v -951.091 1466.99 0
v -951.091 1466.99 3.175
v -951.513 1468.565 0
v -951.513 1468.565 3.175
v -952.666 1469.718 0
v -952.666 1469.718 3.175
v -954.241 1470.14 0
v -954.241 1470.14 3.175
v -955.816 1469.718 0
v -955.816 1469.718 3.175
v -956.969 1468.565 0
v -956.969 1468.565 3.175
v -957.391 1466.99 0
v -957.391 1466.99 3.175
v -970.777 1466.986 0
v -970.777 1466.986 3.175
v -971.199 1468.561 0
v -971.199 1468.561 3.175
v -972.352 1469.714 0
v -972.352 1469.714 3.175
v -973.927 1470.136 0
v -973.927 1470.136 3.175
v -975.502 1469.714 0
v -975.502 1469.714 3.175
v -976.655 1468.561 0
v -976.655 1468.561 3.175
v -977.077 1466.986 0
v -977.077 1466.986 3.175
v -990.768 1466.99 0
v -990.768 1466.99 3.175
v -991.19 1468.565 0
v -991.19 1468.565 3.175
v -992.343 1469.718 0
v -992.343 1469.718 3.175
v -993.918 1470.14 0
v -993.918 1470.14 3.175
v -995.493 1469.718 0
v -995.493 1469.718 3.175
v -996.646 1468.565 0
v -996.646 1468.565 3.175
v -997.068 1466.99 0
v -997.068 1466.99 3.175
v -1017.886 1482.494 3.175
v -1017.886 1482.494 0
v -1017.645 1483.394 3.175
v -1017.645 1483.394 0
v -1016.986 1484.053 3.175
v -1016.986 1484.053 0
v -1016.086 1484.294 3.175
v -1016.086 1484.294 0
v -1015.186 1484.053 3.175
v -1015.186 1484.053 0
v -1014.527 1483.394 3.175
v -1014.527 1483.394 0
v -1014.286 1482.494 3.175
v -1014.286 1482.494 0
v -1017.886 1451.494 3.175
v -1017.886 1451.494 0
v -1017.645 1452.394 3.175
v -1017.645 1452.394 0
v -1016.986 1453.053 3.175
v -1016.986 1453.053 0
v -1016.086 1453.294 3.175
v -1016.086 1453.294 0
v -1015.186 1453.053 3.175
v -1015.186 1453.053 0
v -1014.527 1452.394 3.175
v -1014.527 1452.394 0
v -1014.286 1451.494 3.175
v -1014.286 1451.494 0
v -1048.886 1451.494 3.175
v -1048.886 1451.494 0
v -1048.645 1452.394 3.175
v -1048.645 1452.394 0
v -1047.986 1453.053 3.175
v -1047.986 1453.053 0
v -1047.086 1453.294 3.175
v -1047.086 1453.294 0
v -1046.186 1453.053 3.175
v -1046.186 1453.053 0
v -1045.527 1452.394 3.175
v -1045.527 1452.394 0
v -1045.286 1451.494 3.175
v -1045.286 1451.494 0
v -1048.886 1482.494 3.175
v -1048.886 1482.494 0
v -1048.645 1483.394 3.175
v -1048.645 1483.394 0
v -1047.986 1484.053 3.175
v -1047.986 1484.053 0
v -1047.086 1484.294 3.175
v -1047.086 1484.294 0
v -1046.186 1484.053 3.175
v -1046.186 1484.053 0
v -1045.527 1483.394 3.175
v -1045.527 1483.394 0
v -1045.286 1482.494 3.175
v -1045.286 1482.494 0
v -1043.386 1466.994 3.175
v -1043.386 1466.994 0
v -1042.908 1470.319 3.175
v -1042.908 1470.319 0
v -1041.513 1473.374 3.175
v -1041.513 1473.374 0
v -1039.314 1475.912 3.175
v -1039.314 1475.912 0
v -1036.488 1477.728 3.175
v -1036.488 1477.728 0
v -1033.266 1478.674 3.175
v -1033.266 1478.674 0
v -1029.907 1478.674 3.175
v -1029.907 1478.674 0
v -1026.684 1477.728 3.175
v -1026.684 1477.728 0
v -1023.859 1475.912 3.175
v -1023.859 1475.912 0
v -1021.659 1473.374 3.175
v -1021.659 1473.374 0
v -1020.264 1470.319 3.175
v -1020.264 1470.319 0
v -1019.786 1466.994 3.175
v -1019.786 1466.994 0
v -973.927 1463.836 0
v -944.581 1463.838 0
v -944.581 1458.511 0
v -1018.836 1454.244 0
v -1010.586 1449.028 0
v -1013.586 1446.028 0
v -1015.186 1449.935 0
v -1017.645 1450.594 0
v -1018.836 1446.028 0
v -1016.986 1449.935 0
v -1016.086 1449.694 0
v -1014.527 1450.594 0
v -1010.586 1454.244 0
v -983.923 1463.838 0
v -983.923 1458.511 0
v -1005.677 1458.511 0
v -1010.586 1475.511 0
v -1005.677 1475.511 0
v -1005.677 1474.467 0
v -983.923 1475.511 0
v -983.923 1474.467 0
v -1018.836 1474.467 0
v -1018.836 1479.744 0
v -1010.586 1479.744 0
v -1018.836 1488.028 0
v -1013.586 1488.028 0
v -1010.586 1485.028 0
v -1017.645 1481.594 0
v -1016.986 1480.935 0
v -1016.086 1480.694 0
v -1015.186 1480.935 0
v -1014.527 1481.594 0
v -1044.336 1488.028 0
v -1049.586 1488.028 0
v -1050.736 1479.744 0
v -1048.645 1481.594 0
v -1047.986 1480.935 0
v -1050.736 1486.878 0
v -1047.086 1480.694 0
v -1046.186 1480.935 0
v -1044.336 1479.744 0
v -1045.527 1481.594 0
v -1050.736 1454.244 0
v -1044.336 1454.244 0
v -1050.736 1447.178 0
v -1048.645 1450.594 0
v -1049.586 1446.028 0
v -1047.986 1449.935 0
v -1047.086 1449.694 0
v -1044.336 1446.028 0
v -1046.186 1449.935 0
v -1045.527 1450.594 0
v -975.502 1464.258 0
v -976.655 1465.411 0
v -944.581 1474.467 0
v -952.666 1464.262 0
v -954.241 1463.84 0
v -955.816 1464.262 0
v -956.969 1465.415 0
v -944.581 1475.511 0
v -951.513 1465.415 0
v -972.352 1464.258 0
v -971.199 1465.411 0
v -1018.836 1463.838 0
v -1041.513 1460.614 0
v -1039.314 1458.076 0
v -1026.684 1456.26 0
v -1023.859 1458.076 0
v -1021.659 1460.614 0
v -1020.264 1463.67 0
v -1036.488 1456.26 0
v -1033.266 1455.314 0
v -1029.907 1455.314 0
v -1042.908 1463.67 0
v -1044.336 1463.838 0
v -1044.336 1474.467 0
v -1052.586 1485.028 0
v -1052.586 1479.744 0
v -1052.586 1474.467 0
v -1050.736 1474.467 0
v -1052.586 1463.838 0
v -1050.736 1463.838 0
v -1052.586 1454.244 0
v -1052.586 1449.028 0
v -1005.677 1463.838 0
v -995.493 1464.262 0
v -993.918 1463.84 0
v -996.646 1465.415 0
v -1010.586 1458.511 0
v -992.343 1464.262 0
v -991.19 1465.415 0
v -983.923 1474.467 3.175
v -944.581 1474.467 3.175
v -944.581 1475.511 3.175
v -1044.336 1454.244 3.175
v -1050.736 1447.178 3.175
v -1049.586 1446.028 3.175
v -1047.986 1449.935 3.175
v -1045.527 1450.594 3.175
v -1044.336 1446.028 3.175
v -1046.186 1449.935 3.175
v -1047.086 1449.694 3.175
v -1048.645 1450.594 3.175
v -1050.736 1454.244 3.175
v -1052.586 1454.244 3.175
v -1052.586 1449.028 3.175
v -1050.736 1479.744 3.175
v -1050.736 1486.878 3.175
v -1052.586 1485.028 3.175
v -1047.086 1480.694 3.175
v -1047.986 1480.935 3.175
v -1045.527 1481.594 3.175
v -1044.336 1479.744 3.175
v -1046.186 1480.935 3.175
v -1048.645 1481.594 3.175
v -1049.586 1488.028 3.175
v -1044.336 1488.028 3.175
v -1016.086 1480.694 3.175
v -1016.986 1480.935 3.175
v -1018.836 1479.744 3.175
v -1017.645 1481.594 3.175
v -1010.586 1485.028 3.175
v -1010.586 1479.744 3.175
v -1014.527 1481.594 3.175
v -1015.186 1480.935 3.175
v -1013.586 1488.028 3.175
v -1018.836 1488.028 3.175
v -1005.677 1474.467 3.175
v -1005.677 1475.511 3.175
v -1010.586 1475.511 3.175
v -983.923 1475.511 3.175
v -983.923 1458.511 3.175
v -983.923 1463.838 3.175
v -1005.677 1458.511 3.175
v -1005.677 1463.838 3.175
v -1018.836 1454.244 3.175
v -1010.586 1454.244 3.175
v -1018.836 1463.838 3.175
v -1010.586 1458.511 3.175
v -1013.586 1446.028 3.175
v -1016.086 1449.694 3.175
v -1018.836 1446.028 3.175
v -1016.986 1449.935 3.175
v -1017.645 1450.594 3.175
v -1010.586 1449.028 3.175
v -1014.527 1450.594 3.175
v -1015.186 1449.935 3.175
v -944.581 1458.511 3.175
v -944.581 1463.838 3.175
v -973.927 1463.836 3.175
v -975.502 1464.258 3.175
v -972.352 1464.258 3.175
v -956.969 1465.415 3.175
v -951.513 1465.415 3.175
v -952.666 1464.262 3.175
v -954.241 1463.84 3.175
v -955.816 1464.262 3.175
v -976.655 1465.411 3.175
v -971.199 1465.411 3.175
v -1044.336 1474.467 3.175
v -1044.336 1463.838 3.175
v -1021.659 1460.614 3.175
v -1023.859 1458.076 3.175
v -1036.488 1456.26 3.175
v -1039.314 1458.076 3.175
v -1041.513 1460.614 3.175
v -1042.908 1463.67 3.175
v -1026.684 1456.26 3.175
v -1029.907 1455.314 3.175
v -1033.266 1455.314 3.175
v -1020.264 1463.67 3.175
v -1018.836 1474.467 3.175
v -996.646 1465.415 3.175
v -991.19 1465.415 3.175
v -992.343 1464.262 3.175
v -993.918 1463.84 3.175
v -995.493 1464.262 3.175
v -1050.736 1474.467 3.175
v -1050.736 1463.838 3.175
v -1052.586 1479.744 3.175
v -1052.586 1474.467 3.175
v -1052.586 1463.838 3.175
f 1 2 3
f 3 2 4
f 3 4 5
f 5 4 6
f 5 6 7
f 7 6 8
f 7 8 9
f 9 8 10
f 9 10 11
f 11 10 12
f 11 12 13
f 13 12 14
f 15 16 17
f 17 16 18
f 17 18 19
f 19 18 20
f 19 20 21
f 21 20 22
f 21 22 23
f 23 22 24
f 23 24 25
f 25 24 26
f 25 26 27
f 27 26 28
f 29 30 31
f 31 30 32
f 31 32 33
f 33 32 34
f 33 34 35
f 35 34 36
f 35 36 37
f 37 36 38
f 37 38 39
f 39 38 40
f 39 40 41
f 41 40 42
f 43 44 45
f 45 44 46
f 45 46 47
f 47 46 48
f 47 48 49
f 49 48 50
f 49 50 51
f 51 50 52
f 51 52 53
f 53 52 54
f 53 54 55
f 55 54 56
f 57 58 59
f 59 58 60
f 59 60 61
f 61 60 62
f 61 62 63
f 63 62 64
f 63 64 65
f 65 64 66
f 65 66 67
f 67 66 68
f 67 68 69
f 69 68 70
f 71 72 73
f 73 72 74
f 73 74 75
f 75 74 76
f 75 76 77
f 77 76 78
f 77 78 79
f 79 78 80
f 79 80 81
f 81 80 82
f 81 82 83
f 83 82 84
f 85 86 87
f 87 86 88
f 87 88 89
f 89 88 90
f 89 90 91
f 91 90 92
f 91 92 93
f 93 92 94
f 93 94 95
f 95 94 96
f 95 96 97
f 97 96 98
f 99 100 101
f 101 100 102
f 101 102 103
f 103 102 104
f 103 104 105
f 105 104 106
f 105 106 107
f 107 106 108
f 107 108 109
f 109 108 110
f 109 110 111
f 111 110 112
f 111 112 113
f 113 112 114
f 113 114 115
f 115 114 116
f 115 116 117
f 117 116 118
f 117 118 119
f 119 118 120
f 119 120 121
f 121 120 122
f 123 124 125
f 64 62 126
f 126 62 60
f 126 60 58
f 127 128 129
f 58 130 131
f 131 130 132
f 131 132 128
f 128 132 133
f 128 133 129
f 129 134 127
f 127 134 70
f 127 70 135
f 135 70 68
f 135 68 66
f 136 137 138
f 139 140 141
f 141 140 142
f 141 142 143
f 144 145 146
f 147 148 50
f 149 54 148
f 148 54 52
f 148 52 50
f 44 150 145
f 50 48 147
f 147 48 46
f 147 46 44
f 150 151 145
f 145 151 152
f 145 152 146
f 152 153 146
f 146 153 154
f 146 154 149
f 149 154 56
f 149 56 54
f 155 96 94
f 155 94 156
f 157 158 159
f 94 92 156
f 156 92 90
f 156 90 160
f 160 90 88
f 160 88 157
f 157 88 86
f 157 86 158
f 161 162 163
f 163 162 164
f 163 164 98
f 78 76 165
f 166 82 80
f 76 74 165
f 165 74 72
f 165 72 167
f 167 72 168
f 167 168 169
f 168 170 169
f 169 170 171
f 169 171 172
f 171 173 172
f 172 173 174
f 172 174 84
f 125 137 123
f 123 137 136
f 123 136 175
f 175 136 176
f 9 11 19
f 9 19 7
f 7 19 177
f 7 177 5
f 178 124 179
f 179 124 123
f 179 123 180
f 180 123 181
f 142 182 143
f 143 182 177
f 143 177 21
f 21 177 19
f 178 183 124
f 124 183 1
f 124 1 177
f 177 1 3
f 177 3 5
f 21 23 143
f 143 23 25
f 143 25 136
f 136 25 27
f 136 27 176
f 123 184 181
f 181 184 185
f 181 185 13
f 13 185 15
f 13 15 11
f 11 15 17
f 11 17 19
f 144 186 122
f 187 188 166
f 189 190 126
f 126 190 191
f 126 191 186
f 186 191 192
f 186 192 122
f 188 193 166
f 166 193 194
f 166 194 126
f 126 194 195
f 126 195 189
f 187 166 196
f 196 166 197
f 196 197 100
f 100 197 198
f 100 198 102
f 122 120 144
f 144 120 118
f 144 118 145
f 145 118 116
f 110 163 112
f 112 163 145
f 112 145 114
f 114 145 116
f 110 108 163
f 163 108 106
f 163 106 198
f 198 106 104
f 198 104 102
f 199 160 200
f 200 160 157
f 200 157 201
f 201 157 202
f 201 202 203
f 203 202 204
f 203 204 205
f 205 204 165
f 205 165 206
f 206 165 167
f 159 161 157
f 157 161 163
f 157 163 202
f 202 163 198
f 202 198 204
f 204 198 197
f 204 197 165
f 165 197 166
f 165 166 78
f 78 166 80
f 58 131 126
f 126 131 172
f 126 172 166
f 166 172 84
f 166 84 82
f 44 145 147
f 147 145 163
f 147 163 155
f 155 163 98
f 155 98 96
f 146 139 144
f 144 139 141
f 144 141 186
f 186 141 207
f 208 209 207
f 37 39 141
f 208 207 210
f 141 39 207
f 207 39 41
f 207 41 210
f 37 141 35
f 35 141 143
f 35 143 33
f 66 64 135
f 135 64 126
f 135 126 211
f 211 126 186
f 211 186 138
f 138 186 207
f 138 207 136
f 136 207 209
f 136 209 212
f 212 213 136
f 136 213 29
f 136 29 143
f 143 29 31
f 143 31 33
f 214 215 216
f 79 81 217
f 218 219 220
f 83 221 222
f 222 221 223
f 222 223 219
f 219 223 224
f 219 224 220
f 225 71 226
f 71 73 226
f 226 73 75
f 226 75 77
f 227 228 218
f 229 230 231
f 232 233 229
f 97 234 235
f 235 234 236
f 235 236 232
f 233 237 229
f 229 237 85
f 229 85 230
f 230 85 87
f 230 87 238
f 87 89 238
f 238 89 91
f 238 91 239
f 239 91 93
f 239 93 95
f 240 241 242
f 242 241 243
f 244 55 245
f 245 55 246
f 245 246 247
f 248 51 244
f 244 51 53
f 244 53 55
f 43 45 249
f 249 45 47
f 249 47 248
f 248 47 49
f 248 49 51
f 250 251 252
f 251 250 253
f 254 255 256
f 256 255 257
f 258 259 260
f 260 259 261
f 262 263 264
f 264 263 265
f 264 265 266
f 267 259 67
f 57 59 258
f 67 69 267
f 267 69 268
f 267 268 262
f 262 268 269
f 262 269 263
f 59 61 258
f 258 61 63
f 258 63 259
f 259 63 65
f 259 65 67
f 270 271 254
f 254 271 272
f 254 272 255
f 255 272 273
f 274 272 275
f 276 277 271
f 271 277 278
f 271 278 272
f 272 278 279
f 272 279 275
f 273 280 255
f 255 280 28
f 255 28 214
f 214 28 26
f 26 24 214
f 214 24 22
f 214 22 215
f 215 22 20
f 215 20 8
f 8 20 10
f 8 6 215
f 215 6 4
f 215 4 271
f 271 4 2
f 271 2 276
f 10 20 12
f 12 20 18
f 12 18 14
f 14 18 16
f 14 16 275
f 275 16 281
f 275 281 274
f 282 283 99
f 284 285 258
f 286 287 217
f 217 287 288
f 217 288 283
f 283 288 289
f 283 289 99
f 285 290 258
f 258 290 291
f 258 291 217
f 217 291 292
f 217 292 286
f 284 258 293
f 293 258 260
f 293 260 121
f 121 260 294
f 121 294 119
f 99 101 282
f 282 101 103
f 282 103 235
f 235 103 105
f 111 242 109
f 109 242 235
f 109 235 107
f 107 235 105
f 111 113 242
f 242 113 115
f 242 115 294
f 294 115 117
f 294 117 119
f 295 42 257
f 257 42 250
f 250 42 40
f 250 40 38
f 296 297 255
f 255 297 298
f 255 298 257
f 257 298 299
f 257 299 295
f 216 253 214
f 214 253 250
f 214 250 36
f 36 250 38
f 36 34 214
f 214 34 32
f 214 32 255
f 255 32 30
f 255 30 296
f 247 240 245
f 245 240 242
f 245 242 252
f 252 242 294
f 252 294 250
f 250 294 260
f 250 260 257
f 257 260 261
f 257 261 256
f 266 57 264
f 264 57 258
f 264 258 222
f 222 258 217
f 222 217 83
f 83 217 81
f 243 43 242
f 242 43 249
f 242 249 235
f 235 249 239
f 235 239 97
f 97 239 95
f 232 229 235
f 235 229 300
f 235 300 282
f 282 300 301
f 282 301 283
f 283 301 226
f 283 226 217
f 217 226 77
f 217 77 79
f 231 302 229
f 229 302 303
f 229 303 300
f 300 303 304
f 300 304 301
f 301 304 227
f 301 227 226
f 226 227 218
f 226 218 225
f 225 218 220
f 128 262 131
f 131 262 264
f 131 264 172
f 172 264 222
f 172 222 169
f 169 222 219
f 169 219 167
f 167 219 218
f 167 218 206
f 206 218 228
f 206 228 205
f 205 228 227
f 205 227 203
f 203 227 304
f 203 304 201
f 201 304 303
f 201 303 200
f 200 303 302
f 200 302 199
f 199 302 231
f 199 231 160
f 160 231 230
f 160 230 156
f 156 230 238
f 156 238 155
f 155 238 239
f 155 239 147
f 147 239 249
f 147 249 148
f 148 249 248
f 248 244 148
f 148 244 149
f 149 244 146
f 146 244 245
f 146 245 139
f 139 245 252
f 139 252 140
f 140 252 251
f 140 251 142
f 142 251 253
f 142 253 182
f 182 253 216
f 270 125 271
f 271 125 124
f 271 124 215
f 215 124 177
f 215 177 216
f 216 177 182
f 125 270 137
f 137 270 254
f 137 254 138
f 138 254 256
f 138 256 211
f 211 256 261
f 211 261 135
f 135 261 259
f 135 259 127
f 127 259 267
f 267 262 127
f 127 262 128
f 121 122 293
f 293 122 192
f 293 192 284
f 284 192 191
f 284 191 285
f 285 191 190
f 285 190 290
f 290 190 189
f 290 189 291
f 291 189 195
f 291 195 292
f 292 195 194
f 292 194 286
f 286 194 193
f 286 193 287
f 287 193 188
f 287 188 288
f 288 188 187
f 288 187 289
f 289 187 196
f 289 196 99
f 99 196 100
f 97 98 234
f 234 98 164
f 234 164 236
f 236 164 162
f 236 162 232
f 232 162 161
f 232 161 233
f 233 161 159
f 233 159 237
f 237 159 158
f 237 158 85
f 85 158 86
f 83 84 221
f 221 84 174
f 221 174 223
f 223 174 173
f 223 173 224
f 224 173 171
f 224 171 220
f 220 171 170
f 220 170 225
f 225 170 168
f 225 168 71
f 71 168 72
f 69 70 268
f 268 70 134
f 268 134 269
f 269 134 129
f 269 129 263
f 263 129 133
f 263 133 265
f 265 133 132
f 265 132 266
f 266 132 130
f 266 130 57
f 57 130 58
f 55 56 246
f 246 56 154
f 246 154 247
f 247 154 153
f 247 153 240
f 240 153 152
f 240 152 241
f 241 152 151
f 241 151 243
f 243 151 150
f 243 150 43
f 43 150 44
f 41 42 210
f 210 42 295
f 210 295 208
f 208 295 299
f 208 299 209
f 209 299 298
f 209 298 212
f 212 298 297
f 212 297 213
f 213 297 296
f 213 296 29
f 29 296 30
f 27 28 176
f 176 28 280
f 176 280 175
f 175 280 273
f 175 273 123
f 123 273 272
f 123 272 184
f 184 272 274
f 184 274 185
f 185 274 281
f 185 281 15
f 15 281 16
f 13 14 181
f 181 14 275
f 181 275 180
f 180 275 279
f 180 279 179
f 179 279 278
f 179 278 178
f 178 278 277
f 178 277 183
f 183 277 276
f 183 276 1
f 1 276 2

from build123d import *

# Parameters (mm, degrees)
BOSS_EXTRUDE1_DEPTH = 3.175
SKETCH3_R           = 11.8
SKETCH3_R_2         = 1.8
CUT_EXTRUDE1_DEPTH  = 1823.683867823
SKETCH4_R           = 3.15
CUT_EXTRUDE2_DEPTH  = 1823.683867823


with BuildPart() as part:
    # Sketch1 → Boss-Extrude1 (new body)
    with BuildSketch(Plane.XY):
        Polygon((-1010.58632196, 1449.028372115), (-1010.58632196, 1458.511234066), (-944.581241408, 1458.511234066), (-944.581241408, 1475.511234066), (-1010.58632196, 1475.511234066), (-1010.58632196, 1485.028372115), (-1013.58632196, 1488.028372115), (-1049.58632196, 1488.028372115), (-1052.58632196, 1485.028372115), (-1052.58632196, 1449.028372115), (-1049.58632196, 1446.028372115), (-1013.58632196, 1446.028372115), align=None)
    extrude(amount=BOSS_EXTRUDE1_DEPTH)

    # Sketch3 → Cut-Extrude1 (cut, through all)
    with BuildSketch(Plane(origin=(0, 0, 0), x_dir=(-1, 0, 0), z_dir=(0, 0, -1))):
        with Locations((1031.58632196, 1466.994096018)):
            Circle(SKETCH3_R)
        with Locations((1047.08632196, 1482.494096018)):
            Circle(SKETCH3_R_2)
        with Locations((1047.08632196, 1451.494096018)):
            Circle(SKETCH3_R_2)
        with Locations((1016.08632196, 1451.494096018)):
            Circle(SKETCH3_R_2)
        with Locations((1016.08632196, 1482.494096018)):
            Circle(SKETCH3_R_2)
    extrude(amount=-CUT_EXTRUDE1_DEPTH, mode=Mode.SUBTRACT)

    # Sketch4 → Cut-Extrude2 (cut, through all)
    with BuildSketch(Plane.XY.offset(3.175)):
        with Locations((-973.927184785, 1466.986205253)):
            Circle(SKETCH4_R)
        with Locations((-993.918310147, 1466.990315025)):
            Circle(SKETCH4_R)
        with Locations((-954.241393614, 1466.990315025)):
            Circle(SKETCH4_R)
    extrude(amount=-CUT_EXTRUDE2_DEPTH, mode=Mode.SUBTRACT)


solid = part.part
